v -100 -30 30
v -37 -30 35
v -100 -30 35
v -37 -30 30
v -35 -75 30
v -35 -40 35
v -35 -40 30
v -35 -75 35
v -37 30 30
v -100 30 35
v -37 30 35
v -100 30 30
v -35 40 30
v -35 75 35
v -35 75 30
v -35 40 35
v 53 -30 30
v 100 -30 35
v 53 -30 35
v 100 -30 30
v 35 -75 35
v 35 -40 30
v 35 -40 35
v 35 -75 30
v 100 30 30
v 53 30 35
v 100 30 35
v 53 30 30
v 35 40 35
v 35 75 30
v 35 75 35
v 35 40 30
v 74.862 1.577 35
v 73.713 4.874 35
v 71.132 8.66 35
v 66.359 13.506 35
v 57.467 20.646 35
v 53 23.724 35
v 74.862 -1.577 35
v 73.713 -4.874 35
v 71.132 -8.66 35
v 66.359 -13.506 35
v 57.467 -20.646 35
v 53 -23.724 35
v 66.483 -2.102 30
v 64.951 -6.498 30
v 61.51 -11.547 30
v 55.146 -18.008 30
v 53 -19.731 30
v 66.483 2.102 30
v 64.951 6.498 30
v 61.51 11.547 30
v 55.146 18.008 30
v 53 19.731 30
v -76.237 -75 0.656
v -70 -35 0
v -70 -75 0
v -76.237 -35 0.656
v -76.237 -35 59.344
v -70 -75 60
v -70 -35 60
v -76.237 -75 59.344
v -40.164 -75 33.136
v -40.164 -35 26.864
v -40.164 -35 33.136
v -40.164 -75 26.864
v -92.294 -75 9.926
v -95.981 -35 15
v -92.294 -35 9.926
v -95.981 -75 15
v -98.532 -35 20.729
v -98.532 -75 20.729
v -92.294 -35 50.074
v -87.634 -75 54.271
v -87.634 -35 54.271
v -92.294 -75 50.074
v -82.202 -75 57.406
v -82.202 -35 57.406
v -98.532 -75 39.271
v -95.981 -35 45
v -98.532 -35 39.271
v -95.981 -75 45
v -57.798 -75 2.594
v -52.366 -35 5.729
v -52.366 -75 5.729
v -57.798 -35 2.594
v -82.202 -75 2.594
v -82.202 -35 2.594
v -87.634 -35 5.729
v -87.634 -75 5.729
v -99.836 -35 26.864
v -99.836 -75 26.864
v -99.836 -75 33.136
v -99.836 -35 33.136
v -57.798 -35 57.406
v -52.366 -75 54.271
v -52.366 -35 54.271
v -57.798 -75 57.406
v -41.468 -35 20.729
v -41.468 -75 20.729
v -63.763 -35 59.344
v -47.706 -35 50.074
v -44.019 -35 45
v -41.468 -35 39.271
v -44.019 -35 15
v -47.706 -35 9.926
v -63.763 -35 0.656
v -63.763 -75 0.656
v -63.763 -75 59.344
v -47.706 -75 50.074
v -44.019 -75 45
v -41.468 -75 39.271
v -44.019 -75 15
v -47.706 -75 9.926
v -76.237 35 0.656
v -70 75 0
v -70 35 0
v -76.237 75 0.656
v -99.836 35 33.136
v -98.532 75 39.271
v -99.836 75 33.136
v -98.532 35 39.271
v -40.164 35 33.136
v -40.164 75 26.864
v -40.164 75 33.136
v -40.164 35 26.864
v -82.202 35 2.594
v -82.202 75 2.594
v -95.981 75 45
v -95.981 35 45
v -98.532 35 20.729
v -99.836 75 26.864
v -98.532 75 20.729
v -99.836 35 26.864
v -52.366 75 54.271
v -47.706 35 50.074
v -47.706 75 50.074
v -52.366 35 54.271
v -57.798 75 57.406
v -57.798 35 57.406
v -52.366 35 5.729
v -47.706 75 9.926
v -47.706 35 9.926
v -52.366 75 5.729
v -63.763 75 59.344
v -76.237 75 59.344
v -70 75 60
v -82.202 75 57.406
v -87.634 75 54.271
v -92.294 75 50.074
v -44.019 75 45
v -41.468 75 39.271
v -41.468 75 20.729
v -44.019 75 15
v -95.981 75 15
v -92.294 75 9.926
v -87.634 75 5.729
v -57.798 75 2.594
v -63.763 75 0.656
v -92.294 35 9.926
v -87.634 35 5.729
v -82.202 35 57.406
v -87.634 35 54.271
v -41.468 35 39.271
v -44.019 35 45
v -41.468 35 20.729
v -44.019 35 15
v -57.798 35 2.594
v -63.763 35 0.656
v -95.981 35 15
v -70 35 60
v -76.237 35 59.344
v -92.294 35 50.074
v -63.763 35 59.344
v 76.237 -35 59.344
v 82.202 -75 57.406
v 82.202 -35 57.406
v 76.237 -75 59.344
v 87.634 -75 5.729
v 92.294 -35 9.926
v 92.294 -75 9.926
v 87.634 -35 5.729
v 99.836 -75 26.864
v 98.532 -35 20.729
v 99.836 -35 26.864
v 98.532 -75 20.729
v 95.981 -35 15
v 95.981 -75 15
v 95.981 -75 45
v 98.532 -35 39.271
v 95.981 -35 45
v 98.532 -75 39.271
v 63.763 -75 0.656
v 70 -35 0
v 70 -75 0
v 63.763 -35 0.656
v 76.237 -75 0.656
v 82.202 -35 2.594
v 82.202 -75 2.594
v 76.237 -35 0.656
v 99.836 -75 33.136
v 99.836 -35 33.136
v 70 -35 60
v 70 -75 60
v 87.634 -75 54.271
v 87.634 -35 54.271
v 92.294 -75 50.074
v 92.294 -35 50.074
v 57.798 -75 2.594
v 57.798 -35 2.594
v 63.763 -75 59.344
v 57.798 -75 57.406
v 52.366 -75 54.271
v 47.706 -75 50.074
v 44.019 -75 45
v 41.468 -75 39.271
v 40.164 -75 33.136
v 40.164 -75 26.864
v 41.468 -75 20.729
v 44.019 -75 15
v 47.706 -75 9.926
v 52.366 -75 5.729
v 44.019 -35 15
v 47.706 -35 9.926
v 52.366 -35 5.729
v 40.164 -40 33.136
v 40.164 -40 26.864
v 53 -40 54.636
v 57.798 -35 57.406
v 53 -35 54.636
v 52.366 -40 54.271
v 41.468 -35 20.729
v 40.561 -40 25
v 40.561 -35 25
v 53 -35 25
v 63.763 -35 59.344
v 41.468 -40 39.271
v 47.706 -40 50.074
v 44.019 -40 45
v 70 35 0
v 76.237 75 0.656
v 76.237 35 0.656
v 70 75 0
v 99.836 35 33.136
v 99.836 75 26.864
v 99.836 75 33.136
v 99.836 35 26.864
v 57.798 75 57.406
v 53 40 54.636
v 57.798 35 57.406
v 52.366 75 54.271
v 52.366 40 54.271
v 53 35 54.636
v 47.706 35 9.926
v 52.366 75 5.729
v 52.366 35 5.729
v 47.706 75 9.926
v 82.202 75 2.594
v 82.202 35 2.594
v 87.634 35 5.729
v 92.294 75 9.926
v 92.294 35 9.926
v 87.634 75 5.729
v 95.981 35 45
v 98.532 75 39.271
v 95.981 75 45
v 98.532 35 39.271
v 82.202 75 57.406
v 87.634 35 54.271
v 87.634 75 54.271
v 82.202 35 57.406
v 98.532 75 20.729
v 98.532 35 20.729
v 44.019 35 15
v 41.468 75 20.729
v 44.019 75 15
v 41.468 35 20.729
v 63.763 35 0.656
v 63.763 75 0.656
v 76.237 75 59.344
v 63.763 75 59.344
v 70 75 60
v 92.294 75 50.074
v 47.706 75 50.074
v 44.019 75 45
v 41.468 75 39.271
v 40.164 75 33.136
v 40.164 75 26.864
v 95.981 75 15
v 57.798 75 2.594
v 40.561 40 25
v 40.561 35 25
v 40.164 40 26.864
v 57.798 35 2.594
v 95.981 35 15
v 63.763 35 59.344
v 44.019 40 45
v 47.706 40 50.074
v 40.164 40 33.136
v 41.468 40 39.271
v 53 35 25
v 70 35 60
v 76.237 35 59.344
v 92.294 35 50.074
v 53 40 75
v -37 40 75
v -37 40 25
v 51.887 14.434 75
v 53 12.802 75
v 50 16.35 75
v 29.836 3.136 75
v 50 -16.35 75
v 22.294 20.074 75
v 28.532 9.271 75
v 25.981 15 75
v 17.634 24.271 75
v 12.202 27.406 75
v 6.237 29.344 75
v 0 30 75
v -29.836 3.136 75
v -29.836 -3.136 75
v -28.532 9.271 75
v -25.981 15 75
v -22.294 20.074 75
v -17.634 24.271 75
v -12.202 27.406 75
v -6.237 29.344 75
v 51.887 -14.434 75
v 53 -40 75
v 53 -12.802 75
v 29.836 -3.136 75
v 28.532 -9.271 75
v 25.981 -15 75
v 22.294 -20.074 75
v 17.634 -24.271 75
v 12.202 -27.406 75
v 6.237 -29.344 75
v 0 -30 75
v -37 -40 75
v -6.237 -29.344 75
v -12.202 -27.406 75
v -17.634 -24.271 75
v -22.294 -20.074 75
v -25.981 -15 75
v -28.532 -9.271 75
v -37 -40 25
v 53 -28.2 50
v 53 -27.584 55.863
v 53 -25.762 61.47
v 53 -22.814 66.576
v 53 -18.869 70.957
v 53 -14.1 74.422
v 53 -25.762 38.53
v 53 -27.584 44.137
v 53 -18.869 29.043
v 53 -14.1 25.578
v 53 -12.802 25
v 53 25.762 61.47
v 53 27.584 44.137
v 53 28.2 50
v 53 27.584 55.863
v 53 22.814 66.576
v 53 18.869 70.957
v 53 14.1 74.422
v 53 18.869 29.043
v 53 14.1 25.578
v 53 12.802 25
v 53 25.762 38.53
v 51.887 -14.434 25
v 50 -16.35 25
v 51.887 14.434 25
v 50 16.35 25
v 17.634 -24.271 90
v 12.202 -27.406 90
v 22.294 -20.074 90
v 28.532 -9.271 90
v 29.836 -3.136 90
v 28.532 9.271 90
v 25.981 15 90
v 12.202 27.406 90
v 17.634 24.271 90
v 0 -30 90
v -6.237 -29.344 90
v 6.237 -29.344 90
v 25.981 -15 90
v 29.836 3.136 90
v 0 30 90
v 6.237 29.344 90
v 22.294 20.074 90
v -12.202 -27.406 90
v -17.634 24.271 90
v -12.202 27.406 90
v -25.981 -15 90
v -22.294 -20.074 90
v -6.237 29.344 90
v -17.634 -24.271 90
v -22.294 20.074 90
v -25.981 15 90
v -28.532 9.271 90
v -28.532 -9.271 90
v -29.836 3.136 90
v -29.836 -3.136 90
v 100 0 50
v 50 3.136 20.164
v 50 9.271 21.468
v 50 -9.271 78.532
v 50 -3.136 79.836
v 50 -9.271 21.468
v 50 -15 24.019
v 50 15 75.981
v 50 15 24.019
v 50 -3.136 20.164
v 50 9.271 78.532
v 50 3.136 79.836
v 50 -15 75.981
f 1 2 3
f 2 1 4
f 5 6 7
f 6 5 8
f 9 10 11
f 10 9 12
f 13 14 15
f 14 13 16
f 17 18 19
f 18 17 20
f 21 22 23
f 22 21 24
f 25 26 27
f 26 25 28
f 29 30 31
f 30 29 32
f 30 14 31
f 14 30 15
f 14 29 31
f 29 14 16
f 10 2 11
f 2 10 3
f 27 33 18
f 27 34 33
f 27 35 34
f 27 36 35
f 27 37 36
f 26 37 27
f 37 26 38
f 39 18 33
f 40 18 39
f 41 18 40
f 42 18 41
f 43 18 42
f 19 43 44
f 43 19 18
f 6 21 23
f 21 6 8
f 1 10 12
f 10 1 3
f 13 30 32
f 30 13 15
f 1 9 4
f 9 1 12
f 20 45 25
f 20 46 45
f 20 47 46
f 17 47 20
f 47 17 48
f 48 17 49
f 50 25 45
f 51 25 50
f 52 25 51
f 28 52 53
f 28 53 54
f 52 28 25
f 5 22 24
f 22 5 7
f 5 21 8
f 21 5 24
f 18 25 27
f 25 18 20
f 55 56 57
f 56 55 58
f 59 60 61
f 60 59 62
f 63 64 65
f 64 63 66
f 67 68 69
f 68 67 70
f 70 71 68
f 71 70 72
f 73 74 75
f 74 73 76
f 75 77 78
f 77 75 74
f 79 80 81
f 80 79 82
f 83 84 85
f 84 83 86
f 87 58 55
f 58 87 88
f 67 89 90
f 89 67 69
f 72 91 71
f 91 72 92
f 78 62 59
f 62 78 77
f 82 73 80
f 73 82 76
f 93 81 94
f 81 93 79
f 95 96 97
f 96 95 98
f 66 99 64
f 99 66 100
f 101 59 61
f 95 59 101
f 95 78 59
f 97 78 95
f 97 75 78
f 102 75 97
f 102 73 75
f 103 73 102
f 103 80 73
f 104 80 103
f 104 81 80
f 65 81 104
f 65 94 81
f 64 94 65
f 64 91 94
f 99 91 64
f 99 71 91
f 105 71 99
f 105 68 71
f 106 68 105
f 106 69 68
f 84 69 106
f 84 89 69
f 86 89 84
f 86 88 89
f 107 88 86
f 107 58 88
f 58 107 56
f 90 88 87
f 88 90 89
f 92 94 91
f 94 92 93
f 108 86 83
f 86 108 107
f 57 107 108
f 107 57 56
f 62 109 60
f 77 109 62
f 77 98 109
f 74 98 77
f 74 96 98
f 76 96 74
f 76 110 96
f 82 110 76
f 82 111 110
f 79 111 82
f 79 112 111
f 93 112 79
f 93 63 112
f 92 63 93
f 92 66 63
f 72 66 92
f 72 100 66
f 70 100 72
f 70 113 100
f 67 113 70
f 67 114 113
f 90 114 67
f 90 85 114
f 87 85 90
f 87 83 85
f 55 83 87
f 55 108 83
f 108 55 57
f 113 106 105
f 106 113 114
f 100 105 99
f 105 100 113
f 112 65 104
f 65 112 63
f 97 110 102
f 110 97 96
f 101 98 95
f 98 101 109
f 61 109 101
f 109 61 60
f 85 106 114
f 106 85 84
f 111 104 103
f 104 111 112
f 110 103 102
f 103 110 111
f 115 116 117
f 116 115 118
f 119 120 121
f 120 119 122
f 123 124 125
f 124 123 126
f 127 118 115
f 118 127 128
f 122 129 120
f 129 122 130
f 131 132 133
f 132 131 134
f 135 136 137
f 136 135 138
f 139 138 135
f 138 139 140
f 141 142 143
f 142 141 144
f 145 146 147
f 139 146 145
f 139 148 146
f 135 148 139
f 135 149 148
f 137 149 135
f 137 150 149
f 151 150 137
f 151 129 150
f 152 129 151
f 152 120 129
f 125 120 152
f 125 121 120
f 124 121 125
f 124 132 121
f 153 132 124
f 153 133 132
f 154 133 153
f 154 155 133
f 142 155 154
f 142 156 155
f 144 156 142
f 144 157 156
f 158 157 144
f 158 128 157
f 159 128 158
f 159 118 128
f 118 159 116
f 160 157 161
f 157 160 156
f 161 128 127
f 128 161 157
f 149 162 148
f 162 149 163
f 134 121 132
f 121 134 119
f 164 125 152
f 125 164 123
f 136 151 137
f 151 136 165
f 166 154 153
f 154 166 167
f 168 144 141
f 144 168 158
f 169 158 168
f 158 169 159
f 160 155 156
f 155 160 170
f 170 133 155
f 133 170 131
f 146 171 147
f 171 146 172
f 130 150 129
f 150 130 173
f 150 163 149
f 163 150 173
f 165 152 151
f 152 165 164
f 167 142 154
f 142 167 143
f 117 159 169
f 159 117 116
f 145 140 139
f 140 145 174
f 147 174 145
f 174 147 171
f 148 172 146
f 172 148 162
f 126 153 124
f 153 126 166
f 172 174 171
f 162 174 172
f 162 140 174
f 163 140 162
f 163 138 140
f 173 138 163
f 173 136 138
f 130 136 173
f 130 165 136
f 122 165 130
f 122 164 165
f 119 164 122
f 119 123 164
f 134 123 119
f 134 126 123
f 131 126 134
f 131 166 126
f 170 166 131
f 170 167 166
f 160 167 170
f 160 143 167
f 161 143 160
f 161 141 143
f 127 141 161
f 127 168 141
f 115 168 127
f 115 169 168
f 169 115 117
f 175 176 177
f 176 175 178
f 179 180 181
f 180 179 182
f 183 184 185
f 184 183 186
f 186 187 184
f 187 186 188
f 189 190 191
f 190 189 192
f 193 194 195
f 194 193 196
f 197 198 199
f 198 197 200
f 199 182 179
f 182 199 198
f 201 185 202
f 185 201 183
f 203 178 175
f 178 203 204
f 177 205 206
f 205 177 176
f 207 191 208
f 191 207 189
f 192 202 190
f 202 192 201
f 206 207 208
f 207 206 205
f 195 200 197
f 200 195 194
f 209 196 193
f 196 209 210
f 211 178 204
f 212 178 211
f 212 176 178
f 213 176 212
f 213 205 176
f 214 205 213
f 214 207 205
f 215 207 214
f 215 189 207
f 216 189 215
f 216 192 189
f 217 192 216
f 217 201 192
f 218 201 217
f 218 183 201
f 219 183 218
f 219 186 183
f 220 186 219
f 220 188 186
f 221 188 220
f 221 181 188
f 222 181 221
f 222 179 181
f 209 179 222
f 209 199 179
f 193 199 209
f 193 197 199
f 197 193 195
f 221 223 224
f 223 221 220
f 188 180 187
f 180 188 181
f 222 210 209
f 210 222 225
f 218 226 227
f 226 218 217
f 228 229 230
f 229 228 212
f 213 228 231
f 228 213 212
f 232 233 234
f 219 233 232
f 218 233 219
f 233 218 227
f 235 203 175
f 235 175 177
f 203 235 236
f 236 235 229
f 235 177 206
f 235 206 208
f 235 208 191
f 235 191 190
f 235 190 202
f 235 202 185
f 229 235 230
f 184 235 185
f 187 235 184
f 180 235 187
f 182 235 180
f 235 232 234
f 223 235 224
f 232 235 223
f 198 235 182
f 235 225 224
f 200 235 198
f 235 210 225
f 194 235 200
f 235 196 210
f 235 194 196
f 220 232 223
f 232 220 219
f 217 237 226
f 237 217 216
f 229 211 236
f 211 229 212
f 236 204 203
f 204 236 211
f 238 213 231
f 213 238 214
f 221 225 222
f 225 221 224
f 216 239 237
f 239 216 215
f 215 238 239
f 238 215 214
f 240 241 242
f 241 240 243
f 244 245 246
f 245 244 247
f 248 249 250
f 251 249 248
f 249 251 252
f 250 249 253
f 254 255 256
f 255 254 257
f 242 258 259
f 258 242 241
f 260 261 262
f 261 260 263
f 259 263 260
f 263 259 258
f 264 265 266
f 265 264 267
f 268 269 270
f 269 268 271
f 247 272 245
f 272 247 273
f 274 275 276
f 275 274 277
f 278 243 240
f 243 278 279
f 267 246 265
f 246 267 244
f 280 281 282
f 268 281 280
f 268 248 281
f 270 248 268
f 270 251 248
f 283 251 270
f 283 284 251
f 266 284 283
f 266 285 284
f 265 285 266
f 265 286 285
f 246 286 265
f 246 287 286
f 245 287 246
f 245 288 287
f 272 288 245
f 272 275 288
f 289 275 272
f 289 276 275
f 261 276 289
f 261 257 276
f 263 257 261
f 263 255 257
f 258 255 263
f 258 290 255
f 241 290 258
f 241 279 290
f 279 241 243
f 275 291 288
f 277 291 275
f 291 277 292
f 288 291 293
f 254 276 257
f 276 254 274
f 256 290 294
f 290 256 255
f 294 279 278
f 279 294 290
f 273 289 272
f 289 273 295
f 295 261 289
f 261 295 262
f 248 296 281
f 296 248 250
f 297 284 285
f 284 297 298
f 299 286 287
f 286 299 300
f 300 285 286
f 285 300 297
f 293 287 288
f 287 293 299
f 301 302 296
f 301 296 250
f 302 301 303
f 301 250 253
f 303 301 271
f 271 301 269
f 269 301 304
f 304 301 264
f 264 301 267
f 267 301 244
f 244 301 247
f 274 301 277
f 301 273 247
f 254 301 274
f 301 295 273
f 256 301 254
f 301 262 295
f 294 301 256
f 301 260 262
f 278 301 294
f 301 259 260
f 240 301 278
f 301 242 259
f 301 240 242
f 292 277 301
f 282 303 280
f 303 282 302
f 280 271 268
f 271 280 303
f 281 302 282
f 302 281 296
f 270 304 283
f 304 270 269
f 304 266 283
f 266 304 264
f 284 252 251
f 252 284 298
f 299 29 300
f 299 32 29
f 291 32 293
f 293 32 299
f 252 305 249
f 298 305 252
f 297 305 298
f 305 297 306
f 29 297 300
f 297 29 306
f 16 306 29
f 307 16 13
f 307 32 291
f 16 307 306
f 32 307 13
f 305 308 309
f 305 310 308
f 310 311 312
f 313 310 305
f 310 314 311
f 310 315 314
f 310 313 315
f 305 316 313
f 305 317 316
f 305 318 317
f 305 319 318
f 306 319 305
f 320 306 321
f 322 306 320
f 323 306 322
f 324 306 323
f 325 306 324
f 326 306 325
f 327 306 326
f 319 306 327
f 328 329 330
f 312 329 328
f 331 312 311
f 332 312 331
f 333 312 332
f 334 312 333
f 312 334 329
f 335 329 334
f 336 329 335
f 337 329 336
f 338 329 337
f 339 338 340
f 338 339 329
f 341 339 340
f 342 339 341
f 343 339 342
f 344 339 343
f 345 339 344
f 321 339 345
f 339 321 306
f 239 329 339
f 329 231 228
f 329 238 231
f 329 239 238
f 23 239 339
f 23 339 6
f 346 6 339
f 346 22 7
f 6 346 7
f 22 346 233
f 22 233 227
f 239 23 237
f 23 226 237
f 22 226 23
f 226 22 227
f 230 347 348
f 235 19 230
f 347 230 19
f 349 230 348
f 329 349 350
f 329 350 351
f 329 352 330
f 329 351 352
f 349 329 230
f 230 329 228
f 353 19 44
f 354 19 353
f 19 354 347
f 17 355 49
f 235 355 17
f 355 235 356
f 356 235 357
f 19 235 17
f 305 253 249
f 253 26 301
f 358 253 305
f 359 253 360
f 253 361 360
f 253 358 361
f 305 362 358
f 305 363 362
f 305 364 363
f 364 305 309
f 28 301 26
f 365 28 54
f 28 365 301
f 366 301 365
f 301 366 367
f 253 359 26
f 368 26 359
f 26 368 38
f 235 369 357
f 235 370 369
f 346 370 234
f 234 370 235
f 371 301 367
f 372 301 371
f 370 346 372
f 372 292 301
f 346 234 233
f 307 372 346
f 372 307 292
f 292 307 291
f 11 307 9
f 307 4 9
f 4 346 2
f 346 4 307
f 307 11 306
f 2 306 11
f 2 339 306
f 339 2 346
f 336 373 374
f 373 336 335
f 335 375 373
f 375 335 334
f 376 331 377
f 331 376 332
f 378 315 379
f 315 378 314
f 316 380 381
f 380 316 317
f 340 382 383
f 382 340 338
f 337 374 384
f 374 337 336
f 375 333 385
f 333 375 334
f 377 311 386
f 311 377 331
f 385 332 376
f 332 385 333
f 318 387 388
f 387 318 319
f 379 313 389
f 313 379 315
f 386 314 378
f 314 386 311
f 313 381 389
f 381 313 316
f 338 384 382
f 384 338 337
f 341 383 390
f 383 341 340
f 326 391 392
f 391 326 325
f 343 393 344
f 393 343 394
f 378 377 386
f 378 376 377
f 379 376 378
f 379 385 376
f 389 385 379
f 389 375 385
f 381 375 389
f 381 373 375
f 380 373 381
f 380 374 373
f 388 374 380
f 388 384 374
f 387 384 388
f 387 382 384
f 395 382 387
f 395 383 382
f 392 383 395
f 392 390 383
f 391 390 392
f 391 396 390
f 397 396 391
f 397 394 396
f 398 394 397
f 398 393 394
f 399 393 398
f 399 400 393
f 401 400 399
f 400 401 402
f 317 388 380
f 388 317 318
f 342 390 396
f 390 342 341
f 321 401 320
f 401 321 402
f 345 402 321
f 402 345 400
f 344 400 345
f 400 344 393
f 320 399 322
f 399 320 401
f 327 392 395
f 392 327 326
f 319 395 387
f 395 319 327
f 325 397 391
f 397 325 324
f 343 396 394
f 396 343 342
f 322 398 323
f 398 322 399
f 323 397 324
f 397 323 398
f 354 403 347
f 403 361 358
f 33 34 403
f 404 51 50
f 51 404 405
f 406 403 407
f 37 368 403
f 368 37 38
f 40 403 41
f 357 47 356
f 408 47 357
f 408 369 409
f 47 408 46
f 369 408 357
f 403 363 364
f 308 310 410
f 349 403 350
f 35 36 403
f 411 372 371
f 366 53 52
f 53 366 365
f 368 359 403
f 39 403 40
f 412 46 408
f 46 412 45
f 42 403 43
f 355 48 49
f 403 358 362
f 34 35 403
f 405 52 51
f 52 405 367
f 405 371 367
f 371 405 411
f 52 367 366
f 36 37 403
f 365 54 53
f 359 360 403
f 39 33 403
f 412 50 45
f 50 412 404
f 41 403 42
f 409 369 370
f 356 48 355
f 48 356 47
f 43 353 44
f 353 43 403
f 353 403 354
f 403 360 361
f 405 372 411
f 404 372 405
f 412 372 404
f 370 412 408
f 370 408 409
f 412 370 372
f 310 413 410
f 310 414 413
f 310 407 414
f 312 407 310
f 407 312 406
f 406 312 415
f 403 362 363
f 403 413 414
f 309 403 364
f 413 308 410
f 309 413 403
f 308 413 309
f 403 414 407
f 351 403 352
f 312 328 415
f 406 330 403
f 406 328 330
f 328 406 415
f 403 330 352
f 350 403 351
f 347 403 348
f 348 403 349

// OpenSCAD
module rounded_board(height, width, depth) {
    x = width / 2 - 5 ;
    y = depth / 2 - 5;
    hull() {
    translate([x, y, height/2]) cylinder(5, 5, height, true);
    translate([-x, y, height/2]) cylinder(5, 5, height, true);
    translate([x, -y, height/2]) cylinder(5, 5, height, true);
    translate([-x, -y, height/2]) cylinder(5, 5, height, true);
    }
}

module boxFR(){
    translate([30, 35, 0] )cube([50, 100, 100]);
}


module wheelFR() {
    translate([35, 70, 30]) rotate([0, 90, 0]) cylinder(40, 30, 30);
}

module robot() {
difference() {
translate([0, 0, 30]) rounded_board(5, 150, 200);
union() {
boxFR(); mirror([1, 0, 0]) boxFR();
mirror([0,1,0]){boxFR(); mirror([1, 0, 0]) boxFR();}
}
}

wheelFR(); mirror([1, 0, 0]) wheelFR();
mirror([0,1,0]){wheelFR(); mirror([1, 0, 0]) wheelFR();}

translate([0, 8, 50])cube([80, 90, 50], true);
translate([0, 0, 80]) cylinder(20, 30, 30, true);
translate([0, 50, 50])rotate([-90, 0, 0])cylinder(50,30,0);
}

rotate([0, 0, -90]) robot();
